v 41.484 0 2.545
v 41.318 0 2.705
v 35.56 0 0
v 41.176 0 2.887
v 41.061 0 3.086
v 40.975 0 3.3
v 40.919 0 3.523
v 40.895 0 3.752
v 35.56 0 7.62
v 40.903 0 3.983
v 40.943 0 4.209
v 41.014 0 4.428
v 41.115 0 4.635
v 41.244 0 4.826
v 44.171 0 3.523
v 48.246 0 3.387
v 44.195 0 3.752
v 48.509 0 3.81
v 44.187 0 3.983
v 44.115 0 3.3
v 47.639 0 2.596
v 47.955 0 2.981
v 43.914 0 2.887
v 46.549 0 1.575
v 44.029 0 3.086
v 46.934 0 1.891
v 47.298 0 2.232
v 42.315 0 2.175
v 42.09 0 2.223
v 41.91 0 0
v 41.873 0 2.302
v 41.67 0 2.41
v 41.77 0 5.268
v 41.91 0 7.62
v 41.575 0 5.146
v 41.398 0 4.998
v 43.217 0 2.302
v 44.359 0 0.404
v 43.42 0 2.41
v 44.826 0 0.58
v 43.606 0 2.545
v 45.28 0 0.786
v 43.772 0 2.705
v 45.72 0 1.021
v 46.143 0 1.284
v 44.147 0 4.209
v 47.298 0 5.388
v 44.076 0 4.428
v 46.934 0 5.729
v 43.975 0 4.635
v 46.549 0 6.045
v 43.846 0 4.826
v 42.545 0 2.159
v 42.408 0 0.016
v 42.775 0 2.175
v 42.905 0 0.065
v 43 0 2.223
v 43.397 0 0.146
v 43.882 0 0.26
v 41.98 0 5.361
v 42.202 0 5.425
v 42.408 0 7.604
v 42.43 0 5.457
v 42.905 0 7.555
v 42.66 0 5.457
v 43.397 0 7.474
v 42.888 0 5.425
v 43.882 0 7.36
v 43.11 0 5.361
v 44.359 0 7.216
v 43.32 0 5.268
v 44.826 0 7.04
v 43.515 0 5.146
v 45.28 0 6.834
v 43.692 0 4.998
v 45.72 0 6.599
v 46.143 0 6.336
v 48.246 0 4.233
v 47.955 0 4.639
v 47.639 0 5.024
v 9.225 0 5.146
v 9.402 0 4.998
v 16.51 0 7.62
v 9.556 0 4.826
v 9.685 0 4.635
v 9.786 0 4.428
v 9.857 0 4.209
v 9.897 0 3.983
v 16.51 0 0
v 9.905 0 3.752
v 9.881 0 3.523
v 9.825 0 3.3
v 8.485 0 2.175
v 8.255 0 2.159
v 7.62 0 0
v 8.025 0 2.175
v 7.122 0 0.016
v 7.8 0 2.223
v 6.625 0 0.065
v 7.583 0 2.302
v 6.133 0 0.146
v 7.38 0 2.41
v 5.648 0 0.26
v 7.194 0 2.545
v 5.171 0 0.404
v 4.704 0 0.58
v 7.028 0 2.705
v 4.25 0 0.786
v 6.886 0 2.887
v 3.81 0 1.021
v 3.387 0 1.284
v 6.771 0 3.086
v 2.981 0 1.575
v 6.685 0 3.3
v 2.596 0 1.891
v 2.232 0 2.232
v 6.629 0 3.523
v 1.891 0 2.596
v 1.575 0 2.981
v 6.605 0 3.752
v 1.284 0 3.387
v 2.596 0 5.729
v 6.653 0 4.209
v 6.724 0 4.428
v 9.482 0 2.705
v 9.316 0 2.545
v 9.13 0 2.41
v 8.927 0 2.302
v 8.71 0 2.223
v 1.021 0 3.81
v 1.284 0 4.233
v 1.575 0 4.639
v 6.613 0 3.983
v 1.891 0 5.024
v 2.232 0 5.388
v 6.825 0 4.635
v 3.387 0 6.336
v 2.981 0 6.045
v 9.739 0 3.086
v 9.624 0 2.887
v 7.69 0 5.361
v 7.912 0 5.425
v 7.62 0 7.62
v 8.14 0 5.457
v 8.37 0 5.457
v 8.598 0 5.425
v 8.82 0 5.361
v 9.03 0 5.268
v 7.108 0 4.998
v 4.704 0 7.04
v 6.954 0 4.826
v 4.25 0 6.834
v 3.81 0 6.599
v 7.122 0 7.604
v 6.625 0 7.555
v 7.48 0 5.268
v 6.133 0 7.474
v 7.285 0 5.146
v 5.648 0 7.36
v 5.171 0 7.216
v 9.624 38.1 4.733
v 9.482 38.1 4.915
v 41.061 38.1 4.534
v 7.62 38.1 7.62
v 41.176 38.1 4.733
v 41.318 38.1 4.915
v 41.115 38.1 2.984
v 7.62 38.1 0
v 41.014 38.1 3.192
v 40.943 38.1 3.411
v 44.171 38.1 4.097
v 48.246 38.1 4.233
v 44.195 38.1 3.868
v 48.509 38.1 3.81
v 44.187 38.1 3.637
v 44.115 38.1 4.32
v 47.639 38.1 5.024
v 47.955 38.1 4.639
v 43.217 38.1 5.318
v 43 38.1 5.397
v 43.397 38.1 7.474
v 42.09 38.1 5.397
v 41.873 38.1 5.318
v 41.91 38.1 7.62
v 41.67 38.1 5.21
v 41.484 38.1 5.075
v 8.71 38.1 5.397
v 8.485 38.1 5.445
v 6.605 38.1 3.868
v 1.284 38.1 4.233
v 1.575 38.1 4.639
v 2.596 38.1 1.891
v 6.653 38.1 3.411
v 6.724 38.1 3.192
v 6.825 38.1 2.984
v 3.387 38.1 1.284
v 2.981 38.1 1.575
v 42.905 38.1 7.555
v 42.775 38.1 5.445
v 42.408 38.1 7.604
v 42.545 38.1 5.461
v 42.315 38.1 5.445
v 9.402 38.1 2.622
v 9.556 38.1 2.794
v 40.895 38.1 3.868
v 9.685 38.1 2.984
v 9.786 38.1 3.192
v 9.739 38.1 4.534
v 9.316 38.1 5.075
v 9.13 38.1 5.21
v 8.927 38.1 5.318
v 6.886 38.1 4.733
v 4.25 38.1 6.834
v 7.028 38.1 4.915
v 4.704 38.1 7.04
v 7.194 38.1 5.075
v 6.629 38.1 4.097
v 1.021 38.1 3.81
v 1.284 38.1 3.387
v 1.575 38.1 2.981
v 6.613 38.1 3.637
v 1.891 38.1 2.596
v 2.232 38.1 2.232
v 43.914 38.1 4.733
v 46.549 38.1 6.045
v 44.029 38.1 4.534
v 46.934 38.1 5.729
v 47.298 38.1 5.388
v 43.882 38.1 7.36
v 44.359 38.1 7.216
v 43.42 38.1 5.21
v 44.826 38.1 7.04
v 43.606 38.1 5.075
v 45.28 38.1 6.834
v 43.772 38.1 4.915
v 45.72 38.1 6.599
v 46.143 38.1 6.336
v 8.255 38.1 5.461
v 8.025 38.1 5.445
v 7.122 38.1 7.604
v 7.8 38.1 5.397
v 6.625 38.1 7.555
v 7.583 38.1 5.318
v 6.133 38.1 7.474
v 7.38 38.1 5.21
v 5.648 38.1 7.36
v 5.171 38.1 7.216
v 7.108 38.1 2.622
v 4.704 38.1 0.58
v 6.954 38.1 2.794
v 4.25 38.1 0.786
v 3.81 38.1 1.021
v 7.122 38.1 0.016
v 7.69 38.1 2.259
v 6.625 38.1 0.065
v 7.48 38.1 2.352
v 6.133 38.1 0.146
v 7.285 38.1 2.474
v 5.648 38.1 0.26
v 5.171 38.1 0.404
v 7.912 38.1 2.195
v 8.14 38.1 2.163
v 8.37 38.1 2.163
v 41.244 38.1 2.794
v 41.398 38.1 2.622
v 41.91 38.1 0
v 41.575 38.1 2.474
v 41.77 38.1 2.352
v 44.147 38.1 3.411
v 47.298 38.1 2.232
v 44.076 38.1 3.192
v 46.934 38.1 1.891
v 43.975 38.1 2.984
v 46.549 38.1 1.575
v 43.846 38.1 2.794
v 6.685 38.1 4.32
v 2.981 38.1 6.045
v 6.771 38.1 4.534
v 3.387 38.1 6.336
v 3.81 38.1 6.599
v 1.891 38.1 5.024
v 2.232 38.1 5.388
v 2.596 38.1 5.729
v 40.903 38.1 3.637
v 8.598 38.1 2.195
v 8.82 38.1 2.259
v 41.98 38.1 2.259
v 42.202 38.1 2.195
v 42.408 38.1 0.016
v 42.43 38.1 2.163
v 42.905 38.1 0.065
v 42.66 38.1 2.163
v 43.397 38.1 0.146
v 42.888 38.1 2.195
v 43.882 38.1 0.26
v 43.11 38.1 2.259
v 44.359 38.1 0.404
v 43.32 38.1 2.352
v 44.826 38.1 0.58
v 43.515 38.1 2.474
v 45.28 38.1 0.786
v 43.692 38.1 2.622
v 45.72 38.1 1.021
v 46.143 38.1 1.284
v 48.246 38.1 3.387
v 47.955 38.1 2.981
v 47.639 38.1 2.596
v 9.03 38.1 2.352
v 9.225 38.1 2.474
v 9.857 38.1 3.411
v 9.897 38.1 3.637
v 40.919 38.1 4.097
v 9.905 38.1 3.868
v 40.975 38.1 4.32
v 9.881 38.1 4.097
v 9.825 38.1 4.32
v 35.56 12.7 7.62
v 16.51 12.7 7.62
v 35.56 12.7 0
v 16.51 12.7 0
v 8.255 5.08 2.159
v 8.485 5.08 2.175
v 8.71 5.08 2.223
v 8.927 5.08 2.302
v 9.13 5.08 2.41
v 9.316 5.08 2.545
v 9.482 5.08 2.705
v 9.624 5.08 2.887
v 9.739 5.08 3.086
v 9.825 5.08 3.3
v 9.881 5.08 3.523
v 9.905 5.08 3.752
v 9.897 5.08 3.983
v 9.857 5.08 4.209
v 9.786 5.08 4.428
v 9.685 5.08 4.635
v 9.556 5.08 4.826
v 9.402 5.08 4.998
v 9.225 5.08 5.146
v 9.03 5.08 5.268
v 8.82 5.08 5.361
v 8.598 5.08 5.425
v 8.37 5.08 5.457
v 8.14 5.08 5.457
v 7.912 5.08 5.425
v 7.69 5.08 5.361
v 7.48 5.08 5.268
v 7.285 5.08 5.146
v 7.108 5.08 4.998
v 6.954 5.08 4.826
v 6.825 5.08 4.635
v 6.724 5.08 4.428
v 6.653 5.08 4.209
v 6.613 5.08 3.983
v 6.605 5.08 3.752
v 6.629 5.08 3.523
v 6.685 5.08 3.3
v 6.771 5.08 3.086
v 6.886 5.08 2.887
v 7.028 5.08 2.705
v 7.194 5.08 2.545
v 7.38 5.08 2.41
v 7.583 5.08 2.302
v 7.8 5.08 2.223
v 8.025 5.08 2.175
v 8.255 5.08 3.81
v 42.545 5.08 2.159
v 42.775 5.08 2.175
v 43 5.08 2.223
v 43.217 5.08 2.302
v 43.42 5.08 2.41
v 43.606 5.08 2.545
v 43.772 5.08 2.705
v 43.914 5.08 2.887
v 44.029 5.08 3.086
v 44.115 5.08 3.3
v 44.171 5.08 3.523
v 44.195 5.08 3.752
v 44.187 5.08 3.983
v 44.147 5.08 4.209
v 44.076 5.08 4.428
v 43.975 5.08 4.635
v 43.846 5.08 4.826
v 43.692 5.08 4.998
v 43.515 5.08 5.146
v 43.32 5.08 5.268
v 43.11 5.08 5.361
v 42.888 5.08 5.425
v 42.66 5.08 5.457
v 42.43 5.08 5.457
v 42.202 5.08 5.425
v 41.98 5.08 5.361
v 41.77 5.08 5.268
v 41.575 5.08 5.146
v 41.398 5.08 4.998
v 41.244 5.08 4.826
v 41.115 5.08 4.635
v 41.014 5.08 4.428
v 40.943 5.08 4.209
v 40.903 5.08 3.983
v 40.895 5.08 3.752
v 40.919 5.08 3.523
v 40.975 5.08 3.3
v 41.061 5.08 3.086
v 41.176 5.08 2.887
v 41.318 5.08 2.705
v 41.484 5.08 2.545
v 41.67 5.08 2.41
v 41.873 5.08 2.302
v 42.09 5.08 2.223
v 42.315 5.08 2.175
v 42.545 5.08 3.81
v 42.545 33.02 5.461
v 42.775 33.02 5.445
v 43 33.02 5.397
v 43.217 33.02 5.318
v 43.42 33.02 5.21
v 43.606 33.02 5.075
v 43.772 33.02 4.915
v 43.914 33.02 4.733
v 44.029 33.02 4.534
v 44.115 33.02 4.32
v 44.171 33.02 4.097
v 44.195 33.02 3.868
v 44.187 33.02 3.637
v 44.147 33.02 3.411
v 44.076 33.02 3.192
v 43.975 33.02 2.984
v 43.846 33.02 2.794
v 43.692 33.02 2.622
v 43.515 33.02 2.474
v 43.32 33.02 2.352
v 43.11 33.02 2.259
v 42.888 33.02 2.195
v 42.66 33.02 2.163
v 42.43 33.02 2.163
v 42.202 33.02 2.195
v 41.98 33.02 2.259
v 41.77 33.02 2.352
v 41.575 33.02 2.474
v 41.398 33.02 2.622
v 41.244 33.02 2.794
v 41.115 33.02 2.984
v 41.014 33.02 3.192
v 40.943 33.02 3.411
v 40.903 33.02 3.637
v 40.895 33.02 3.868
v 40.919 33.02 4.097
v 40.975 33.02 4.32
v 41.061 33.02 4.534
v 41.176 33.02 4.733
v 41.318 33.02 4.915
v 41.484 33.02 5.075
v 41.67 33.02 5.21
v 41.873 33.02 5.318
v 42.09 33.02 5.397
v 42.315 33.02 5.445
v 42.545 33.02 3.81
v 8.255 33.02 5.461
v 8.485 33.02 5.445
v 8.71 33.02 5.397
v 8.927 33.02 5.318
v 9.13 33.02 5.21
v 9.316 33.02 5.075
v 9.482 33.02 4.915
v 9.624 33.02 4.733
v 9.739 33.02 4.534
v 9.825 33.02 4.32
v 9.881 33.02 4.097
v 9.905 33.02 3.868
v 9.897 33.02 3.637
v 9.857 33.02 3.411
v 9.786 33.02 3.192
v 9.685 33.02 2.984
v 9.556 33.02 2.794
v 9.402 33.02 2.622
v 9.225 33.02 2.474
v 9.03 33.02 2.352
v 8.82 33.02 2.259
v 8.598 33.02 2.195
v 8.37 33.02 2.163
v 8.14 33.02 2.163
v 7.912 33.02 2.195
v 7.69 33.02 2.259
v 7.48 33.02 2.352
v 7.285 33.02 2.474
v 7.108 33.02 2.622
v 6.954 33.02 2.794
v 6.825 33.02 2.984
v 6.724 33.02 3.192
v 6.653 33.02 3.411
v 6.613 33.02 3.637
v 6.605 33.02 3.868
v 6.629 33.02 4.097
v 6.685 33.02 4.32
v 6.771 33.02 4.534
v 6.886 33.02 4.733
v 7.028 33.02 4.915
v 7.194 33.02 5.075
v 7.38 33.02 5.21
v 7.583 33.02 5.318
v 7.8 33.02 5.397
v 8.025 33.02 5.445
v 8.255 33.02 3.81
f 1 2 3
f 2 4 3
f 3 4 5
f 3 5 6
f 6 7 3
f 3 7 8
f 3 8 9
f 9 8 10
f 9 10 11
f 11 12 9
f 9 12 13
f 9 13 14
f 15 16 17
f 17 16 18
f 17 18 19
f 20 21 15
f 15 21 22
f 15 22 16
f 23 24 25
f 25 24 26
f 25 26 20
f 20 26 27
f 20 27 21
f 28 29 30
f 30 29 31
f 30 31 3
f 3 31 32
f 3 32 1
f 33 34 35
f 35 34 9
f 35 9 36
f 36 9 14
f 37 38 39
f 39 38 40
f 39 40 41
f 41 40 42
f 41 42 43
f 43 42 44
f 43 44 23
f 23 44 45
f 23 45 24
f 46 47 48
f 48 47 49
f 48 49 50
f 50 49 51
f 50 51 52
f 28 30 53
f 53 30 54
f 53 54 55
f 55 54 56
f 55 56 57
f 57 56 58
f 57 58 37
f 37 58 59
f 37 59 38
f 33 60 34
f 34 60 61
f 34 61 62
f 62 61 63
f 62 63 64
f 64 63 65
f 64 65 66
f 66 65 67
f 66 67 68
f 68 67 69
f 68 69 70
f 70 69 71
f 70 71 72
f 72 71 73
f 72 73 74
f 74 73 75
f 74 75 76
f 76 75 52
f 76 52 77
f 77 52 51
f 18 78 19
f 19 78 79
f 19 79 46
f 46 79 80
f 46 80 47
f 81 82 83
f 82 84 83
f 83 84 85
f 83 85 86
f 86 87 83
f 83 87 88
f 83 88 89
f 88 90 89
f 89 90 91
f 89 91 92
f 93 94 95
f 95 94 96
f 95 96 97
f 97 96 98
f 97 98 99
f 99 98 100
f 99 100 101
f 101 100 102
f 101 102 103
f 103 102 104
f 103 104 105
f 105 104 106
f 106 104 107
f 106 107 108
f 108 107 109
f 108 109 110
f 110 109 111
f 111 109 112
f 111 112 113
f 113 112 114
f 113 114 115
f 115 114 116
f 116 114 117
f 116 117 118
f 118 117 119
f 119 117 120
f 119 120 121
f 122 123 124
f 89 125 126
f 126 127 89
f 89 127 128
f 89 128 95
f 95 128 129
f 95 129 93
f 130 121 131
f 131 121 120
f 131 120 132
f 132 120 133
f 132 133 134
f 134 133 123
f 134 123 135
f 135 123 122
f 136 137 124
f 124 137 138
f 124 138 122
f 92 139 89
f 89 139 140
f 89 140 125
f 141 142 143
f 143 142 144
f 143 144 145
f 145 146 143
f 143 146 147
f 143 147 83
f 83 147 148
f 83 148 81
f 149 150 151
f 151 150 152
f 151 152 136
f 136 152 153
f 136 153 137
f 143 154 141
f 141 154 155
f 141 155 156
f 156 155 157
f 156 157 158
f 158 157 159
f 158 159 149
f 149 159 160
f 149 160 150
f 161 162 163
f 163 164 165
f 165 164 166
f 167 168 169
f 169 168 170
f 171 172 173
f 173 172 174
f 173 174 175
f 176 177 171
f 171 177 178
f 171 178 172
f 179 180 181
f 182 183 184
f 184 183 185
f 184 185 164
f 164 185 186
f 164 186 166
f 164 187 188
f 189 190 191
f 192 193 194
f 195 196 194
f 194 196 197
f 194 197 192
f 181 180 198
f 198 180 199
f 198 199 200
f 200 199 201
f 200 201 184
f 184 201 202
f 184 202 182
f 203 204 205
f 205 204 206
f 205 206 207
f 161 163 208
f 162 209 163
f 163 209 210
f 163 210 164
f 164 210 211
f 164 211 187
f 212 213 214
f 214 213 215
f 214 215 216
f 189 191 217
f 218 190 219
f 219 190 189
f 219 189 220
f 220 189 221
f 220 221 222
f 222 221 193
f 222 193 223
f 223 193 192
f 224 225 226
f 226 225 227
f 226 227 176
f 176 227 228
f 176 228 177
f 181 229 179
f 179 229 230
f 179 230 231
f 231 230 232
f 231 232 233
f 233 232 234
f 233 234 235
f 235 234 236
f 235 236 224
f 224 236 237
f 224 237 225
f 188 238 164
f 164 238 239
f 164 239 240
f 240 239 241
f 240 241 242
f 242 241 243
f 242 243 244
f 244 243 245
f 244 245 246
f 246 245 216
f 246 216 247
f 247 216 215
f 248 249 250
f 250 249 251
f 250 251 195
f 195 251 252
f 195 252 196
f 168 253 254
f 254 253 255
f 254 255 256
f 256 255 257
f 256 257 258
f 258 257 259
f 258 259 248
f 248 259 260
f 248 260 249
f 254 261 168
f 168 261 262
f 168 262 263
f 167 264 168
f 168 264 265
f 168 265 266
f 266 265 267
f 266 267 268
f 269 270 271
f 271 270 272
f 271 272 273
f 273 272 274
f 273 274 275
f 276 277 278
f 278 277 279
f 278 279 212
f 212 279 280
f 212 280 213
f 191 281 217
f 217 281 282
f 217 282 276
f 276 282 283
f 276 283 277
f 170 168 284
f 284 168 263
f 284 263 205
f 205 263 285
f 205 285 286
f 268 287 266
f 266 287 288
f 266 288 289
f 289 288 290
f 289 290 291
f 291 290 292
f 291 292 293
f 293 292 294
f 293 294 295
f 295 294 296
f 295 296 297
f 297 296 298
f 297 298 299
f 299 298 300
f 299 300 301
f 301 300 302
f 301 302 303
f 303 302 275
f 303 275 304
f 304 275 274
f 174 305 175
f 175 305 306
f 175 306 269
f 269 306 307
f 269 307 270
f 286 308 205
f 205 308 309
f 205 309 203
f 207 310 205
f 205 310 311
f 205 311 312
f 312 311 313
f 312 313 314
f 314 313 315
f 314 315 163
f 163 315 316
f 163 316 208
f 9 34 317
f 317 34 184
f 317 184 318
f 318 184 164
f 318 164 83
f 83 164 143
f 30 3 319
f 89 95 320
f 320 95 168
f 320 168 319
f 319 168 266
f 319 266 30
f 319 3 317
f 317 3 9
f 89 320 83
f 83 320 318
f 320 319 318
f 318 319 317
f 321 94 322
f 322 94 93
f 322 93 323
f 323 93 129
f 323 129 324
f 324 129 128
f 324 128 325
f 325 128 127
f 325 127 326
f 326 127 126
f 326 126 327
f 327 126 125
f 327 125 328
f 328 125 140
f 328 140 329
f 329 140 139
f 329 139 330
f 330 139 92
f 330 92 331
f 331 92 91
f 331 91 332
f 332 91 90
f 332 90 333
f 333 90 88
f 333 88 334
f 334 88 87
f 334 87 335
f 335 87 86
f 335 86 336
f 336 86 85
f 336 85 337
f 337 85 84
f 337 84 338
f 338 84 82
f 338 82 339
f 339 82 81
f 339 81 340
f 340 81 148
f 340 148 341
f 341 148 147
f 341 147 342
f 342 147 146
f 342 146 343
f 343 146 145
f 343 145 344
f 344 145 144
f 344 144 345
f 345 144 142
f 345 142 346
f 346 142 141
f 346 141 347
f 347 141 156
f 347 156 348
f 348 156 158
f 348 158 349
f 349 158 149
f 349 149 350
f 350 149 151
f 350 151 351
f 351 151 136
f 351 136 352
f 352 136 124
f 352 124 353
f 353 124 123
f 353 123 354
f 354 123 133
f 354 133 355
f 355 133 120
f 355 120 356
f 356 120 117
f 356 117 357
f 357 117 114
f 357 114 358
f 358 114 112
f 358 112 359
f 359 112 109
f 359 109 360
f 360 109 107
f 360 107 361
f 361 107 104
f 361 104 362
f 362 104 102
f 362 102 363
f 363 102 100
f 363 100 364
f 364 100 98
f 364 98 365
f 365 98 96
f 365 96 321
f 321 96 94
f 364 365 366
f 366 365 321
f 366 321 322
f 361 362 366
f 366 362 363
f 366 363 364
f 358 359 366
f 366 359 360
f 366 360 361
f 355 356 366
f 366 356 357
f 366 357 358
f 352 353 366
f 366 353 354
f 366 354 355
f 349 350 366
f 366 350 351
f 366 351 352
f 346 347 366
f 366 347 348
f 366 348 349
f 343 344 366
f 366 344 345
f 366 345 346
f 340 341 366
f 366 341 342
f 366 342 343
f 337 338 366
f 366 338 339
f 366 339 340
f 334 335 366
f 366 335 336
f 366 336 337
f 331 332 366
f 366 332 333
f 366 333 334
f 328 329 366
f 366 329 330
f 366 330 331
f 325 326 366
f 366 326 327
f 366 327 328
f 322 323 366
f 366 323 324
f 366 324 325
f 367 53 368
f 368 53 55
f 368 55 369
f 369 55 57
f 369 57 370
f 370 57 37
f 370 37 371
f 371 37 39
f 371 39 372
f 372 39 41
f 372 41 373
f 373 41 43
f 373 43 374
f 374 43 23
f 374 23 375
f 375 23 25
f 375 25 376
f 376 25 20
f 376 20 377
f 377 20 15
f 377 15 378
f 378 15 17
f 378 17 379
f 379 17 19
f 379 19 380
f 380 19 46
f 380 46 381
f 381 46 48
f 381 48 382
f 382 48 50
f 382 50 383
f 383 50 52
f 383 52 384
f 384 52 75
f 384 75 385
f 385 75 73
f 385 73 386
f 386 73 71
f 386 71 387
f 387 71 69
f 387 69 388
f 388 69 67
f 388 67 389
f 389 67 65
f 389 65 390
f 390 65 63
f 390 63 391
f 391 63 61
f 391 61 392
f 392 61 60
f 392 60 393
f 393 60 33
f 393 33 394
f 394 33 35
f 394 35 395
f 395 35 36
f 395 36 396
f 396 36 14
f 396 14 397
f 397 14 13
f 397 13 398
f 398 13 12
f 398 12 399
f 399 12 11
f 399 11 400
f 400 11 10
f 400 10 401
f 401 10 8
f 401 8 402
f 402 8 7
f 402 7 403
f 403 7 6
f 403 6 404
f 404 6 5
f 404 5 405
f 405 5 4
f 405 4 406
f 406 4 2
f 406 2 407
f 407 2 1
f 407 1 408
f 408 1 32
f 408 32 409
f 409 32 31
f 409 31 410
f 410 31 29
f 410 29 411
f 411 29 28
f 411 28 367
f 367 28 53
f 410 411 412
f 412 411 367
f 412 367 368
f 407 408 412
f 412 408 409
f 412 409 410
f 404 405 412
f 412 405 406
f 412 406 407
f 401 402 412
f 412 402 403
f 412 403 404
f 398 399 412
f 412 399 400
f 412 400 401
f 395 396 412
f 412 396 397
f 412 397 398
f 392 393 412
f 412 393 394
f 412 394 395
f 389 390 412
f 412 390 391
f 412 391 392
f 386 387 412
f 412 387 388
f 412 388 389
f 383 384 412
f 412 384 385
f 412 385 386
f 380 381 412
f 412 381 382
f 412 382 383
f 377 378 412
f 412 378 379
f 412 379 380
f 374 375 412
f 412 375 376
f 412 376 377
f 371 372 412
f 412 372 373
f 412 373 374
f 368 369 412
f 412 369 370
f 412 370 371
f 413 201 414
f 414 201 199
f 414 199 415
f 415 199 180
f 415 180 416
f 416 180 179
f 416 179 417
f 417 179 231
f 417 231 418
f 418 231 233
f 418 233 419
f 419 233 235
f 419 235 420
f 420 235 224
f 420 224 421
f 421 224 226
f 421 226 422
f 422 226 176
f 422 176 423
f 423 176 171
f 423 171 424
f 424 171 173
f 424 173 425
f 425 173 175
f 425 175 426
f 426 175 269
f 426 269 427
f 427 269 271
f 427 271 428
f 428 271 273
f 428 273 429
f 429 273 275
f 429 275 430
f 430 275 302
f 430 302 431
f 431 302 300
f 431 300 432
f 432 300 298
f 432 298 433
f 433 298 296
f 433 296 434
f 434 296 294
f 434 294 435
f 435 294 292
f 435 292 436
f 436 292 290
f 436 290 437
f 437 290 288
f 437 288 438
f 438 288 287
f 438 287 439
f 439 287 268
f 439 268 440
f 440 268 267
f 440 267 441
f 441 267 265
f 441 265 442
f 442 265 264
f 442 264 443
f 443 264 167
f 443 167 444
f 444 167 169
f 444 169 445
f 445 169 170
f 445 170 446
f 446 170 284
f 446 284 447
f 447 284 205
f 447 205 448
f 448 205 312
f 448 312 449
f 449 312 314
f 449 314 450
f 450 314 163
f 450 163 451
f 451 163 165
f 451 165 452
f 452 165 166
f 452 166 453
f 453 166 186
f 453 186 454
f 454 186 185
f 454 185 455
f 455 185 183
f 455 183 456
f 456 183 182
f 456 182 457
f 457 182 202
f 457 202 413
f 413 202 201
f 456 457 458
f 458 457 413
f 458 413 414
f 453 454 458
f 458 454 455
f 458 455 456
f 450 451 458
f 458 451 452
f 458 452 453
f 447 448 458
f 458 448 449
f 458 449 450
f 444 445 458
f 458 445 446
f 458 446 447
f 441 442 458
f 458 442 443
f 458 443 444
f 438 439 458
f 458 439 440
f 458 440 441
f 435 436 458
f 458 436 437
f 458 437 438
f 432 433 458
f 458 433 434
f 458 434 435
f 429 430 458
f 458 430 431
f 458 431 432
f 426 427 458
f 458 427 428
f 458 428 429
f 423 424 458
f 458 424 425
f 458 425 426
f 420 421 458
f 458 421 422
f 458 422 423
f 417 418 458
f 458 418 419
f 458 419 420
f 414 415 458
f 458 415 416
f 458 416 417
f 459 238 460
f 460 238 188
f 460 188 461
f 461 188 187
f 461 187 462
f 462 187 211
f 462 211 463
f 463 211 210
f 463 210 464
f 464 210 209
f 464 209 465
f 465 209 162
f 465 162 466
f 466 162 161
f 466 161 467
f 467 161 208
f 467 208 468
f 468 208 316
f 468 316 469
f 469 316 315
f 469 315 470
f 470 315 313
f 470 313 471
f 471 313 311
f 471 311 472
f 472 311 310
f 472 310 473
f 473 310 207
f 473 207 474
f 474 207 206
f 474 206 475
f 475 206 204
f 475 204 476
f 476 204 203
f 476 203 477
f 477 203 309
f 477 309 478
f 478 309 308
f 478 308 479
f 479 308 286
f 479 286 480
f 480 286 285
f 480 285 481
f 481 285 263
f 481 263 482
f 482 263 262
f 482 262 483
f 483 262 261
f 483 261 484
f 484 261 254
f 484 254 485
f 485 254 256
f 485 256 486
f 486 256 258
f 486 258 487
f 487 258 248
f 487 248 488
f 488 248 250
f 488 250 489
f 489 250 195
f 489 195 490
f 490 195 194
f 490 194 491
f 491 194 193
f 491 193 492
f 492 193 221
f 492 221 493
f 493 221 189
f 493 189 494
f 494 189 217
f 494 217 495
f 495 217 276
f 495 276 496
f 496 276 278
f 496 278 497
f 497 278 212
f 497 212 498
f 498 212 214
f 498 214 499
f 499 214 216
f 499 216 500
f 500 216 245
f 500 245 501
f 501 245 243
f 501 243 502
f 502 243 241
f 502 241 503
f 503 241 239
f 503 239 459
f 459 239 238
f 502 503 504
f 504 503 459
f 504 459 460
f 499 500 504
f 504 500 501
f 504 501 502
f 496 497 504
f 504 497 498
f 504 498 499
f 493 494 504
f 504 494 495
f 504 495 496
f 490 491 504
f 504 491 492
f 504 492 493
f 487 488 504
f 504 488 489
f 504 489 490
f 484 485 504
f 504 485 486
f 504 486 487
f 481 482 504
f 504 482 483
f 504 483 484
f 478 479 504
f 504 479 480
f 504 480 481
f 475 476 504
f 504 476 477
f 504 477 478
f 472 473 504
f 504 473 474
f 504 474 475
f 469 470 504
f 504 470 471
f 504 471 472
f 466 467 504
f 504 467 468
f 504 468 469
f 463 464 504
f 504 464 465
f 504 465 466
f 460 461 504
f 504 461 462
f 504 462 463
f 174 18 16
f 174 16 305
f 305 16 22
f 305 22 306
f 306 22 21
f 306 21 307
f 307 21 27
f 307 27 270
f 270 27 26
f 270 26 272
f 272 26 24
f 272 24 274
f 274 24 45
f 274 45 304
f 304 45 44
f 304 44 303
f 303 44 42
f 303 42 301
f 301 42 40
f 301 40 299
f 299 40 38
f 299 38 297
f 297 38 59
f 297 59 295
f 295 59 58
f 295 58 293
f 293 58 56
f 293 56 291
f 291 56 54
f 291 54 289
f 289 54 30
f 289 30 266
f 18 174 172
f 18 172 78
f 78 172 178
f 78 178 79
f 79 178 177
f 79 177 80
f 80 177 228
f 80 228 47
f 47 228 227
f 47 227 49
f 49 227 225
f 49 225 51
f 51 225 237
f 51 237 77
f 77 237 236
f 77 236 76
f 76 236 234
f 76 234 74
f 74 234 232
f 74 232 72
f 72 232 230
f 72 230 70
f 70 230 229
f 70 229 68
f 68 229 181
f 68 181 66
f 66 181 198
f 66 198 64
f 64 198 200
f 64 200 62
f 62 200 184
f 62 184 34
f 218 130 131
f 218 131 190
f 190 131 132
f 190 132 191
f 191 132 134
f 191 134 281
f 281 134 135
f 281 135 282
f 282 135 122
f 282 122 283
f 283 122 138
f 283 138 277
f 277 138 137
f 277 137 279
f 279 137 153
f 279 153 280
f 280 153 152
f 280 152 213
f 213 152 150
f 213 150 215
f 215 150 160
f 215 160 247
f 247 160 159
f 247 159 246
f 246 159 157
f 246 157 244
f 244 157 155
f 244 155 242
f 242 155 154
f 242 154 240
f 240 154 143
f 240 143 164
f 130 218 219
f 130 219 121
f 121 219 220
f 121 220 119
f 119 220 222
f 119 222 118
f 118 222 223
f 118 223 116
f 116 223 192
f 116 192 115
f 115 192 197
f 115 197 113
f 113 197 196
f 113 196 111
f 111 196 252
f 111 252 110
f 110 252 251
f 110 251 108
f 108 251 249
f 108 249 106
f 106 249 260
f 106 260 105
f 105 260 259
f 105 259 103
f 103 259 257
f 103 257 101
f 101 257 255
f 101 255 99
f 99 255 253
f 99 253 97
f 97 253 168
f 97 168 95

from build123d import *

# Parameters (mm, degrees)
SKETCH3_W           = 49.53
SKETCH3_H           = 38.1
BOSS_EXTRUDE2_DEPTH = 7.62
SKETCH4_W           = 19.05
SKETCH4_H           = 12.7
CUT_EXTRUDE1_DEPTH  = 63.951531355
SKETCH6_R           = 1.651
CUT_EXTRUDE2_DEPTH  = 5.08
CUT_EXTRUDE3_START  = -5.08
SKETCH8_R           = 1.651
CUT_EXTRUDE3_DEPTH  = 5.08
FILLET3_R           = 7.62


with BuildPart() as part:
    # Sketch3 → Boss-Extrude2 (new body)
    with BuildSketch(Plane.XY):
        with Locations((24.765, 19.05)):
            Rectangle(SKETCH3_W, SKETCH3_H)
    extrude(amount=BOSS_EXTRUDE2_DEPTH)

    # Sketch4 → Cut-Extrude1 (cut, through all)
    with BuildSketch(Plane.XY.offset(7.62)):
        with Locations((26.035, 6.35)):
            Rectangle(SKETCH4_W, SKETCH4_H)
    extrude(amount=-CUT_EXTRUDE1_DEPTH, mode=Mode.SUBTRACT)

    # Sketch6 → Cut-Extrude2 (cut)
    with BuildSketch(Plane.XZ):
        with Locations(Location((8.255, 3.81, 0), (0, 0, 270))):
            Circle(SKETCH6_R)
        with Locations(Location((42.545, 3.81, 0), (0, 0, 270))):
            Circle(SKETCH6_R)
    extrude(amount=-CUT_EXTRUDE2_DEPTH, mode=Mode.SUBTRACT)

    # Sketch8 → Cut-Extrude3 (cut)
    with BuildSketch(Plane(origin=(0, 38.1, 0), x_dir=(1, 0, 0), z_dir=(0, 1, 0)).offset(CUT_EXTRUDE3_START)):
        with Locations(Location((8.255, -3.81, 0), (0, 0, 90))):
            Circle(SKETCH8_R)
        with Locations(Location((42.545, -3.81, 0), (0, 0, 90))):
            Circle(SKETCH8_R)
    extrude(amount=CUT_EXTRUDE3_DEPTH, mode=Mode.SUBTRACT)

    # Fillet3
    # the kernel refuses this fillet: 7.62 mm, written as the material it takes off along each edge
    with BuildSketch(Plane(origin=(49.53, -19.05, 7.62), x_dir=(-1, 0, 0), z_dir=(0, 1, 0))) as fillet3_piece_1:
        with BuildLine():
            CenterArc((FILLET3_R, -FILLET3_R), FILLET3_R, 90, 90)
            Line((0, -FILLET3_R), (0, 0))
            Line((0, 0), (FILLET3_R, 0))
        make_face()
    extrude(amount=76.2, mode=Mode.SUBTRACT)
    with BuildSketch(Plane(origin=(49.53, -19.05, 0), x_dir=(-1, 0, 0), z_dir=(0, 1, 0)), Plane(origin=(0, 57.15, 0), x_dir=(1, 0, 0), z_dir=(0, -1, 0)), Plane(origin=(0, 57.15, 7.62), x_dir=(0, 0, -1), z_dir=(0, -1, 0))) as fillet3_piece_2:
        with BuildLine():
            CenterArc((FILLET3_R, FILLET3_R), FILLET3_R, 180, 90)
            Line((0, FILLET3_R), (0, 0))
            Line((0, 0), (FILLET3_R, 0))
        make_face()
    extrude(amount=76.2, mode=Mode.SUBTRACT)


solid = part.part
